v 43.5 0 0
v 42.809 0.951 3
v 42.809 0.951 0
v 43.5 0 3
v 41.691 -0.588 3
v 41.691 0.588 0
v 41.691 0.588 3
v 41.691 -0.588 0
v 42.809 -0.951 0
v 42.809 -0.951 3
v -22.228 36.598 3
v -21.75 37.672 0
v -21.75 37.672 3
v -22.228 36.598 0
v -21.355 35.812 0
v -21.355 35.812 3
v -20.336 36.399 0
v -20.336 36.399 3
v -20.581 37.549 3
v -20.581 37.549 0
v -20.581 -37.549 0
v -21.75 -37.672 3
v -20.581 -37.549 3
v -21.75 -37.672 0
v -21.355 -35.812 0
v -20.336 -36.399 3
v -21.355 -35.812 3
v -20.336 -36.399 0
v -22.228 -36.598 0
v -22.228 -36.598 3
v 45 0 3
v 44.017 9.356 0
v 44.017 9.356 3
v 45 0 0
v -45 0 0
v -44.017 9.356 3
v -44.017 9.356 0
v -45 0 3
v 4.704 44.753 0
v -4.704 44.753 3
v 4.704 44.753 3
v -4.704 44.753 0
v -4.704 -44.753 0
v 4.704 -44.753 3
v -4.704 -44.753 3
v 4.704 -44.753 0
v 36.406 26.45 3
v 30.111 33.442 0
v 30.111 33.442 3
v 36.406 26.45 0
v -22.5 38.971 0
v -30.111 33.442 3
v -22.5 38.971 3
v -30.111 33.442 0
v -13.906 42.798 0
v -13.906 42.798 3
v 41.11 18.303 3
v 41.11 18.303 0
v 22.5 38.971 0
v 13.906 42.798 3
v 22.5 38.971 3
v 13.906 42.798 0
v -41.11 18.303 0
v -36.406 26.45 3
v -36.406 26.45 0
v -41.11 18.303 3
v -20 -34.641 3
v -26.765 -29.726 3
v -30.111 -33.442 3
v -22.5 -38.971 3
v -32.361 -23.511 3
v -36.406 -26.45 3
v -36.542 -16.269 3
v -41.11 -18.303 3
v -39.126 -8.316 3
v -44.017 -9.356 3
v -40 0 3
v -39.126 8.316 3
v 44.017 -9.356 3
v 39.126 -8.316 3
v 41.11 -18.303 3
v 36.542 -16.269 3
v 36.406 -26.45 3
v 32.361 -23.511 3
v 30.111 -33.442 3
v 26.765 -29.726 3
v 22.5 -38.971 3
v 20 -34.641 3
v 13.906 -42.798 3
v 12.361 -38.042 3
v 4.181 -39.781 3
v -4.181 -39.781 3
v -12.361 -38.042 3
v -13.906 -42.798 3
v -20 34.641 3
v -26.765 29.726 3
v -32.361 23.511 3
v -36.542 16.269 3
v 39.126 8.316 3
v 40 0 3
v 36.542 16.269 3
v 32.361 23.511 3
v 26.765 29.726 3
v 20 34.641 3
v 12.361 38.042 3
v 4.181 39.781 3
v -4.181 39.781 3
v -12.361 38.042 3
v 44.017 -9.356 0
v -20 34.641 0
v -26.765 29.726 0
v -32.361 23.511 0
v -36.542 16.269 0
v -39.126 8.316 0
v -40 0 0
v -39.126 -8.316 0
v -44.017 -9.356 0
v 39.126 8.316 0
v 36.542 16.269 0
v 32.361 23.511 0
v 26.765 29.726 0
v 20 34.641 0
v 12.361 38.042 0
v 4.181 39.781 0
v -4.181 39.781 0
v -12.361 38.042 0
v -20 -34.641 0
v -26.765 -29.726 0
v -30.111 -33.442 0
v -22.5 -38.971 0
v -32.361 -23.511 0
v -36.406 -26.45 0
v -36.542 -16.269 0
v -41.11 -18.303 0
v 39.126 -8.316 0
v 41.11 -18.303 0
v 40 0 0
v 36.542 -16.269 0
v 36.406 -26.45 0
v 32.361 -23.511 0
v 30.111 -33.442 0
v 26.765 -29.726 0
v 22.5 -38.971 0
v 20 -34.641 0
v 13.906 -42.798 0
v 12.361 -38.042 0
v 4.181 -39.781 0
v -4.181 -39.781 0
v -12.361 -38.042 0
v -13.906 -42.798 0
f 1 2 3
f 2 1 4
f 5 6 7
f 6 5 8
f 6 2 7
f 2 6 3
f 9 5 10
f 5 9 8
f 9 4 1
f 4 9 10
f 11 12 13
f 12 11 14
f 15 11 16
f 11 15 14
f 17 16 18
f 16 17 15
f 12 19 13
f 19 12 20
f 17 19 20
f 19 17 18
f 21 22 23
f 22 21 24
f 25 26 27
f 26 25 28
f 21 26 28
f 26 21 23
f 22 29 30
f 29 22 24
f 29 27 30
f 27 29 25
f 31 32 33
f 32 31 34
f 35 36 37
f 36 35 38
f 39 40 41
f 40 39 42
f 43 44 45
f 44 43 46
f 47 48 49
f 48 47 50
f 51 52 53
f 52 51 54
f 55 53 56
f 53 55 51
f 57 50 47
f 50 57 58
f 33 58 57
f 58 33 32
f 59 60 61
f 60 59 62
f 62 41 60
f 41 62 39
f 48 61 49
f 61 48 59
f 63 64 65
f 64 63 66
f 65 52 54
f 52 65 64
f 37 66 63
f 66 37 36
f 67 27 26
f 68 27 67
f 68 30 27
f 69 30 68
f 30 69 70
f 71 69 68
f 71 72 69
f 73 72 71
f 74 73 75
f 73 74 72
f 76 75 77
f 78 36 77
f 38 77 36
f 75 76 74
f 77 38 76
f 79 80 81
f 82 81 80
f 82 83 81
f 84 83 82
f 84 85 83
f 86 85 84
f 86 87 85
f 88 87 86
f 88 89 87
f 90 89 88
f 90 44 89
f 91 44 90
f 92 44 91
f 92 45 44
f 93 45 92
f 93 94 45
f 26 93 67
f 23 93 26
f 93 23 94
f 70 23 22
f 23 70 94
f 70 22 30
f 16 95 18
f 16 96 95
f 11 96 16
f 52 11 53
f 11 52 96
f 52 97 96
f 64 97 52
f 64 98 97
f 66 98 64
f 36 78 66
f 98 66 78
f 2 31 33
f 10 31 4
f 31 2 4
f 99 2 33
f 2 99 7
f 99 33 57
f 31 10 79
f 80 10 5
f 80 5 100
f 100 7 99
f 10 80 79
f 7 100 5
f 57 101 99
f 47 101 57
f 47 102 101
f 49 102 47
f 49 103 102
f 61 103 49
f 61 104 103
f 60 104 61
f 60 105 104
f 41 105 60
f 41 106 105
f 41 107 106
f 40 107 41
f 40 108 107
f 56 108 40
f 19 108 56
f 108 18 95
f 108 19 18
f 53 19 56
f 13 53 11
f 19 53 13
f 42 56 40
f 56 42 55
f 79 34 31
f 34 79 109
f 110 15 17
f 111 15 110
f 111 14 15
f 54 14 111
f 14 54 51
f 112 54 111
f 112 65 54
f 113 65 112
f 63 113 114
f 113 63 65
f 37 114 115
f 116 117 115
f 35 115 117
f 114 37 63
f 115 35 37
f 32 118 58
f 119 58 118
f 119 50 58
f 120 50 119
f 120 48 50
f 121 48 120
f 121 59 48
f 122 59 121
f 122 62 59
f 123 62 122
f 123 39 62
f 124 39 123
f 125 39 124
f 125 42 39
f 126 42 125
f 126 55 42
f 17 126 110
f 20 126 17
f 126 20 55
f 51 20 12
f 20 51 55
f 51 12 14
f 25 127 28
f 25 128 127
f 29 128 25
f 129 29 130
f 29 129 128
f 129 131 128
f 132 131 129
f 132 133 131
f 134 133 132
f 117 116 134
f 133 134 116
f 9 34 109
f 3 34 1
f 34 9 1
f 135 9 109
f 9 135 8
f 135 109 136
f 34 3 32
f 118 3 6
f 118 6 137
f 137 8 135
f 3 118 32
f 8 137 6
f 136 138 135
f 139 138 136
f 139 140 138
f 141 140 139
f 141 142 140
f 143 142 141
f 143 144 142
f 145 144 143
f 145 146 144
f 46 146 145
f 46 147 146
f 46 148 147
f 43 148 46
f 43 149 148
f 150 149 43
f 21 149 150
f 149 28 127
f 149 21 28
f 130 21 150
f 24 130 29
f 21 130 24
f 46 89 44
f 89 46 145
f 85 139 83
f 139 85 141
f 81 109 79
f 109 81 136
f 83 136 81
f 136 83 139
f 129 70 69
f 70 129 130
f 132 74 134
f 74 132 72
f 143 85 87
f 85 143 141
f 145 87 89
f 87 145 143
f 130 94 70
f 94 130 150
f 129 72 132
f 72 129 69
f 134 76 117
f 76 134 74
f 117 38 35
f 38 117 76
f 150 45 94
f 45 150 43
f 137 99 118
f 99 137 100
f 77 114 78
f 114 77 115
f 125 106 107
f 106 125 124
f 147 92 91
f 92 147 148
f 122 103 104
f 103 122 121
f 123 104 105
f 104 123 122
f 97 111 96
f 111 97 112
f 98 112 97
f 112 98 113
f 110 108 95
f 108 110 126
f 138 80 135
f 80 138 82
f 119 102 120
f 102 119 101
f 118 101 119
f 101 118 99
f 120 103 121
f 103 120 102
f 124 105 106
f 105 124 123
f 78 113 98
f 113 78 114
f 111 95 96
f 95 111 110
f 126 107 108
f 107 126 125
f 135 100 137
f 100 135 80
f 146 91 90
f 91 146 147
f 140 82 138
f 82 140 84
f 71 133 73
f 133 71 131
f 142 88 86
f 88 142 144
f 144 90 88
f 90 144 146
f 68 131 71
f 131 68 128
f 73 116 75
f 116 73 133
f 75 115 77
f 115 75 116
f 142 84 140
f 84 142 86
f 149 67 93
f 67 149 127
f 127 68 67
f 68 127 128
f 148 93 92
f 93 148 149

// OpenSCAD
// file: ../vase-suspender.scad
module vaseSuspender(height = 3,
              holeCount = 3,
              holeRadius = 1,
              innerRadius = 40,
              outerRadiusThickness = 5)
{
   difference()
    {
        // outer ring
        cylinder(h = height,
                 r = innerRadius + outerRadiusThickness);

        // ring cutout
        translate([0, 0, -0.01])
        cylinder(h = height + 0.02,
                 r = innerRadius);

        // cord holes                 
        for(s = [0 : holeCount])
        {
            angle = s * (360 / holeCount);

            xTranslate = innerRadius + (outerRadiusThickness / 2.0);
            color("blue")
            rotate([0, 0, angle])
            translate([xTranslate, 0, -0.01])
            cylinder(h = 8,
                     r = holeRadius
                     );
        }
    }
}
// main file
use <../vase-suspender.scad>

vaseSuspender(height = 3,
              holeCount = 3,
              holeRadius = 1,
              innerRadius = 40,
              outerRadiusThickness = 5);
